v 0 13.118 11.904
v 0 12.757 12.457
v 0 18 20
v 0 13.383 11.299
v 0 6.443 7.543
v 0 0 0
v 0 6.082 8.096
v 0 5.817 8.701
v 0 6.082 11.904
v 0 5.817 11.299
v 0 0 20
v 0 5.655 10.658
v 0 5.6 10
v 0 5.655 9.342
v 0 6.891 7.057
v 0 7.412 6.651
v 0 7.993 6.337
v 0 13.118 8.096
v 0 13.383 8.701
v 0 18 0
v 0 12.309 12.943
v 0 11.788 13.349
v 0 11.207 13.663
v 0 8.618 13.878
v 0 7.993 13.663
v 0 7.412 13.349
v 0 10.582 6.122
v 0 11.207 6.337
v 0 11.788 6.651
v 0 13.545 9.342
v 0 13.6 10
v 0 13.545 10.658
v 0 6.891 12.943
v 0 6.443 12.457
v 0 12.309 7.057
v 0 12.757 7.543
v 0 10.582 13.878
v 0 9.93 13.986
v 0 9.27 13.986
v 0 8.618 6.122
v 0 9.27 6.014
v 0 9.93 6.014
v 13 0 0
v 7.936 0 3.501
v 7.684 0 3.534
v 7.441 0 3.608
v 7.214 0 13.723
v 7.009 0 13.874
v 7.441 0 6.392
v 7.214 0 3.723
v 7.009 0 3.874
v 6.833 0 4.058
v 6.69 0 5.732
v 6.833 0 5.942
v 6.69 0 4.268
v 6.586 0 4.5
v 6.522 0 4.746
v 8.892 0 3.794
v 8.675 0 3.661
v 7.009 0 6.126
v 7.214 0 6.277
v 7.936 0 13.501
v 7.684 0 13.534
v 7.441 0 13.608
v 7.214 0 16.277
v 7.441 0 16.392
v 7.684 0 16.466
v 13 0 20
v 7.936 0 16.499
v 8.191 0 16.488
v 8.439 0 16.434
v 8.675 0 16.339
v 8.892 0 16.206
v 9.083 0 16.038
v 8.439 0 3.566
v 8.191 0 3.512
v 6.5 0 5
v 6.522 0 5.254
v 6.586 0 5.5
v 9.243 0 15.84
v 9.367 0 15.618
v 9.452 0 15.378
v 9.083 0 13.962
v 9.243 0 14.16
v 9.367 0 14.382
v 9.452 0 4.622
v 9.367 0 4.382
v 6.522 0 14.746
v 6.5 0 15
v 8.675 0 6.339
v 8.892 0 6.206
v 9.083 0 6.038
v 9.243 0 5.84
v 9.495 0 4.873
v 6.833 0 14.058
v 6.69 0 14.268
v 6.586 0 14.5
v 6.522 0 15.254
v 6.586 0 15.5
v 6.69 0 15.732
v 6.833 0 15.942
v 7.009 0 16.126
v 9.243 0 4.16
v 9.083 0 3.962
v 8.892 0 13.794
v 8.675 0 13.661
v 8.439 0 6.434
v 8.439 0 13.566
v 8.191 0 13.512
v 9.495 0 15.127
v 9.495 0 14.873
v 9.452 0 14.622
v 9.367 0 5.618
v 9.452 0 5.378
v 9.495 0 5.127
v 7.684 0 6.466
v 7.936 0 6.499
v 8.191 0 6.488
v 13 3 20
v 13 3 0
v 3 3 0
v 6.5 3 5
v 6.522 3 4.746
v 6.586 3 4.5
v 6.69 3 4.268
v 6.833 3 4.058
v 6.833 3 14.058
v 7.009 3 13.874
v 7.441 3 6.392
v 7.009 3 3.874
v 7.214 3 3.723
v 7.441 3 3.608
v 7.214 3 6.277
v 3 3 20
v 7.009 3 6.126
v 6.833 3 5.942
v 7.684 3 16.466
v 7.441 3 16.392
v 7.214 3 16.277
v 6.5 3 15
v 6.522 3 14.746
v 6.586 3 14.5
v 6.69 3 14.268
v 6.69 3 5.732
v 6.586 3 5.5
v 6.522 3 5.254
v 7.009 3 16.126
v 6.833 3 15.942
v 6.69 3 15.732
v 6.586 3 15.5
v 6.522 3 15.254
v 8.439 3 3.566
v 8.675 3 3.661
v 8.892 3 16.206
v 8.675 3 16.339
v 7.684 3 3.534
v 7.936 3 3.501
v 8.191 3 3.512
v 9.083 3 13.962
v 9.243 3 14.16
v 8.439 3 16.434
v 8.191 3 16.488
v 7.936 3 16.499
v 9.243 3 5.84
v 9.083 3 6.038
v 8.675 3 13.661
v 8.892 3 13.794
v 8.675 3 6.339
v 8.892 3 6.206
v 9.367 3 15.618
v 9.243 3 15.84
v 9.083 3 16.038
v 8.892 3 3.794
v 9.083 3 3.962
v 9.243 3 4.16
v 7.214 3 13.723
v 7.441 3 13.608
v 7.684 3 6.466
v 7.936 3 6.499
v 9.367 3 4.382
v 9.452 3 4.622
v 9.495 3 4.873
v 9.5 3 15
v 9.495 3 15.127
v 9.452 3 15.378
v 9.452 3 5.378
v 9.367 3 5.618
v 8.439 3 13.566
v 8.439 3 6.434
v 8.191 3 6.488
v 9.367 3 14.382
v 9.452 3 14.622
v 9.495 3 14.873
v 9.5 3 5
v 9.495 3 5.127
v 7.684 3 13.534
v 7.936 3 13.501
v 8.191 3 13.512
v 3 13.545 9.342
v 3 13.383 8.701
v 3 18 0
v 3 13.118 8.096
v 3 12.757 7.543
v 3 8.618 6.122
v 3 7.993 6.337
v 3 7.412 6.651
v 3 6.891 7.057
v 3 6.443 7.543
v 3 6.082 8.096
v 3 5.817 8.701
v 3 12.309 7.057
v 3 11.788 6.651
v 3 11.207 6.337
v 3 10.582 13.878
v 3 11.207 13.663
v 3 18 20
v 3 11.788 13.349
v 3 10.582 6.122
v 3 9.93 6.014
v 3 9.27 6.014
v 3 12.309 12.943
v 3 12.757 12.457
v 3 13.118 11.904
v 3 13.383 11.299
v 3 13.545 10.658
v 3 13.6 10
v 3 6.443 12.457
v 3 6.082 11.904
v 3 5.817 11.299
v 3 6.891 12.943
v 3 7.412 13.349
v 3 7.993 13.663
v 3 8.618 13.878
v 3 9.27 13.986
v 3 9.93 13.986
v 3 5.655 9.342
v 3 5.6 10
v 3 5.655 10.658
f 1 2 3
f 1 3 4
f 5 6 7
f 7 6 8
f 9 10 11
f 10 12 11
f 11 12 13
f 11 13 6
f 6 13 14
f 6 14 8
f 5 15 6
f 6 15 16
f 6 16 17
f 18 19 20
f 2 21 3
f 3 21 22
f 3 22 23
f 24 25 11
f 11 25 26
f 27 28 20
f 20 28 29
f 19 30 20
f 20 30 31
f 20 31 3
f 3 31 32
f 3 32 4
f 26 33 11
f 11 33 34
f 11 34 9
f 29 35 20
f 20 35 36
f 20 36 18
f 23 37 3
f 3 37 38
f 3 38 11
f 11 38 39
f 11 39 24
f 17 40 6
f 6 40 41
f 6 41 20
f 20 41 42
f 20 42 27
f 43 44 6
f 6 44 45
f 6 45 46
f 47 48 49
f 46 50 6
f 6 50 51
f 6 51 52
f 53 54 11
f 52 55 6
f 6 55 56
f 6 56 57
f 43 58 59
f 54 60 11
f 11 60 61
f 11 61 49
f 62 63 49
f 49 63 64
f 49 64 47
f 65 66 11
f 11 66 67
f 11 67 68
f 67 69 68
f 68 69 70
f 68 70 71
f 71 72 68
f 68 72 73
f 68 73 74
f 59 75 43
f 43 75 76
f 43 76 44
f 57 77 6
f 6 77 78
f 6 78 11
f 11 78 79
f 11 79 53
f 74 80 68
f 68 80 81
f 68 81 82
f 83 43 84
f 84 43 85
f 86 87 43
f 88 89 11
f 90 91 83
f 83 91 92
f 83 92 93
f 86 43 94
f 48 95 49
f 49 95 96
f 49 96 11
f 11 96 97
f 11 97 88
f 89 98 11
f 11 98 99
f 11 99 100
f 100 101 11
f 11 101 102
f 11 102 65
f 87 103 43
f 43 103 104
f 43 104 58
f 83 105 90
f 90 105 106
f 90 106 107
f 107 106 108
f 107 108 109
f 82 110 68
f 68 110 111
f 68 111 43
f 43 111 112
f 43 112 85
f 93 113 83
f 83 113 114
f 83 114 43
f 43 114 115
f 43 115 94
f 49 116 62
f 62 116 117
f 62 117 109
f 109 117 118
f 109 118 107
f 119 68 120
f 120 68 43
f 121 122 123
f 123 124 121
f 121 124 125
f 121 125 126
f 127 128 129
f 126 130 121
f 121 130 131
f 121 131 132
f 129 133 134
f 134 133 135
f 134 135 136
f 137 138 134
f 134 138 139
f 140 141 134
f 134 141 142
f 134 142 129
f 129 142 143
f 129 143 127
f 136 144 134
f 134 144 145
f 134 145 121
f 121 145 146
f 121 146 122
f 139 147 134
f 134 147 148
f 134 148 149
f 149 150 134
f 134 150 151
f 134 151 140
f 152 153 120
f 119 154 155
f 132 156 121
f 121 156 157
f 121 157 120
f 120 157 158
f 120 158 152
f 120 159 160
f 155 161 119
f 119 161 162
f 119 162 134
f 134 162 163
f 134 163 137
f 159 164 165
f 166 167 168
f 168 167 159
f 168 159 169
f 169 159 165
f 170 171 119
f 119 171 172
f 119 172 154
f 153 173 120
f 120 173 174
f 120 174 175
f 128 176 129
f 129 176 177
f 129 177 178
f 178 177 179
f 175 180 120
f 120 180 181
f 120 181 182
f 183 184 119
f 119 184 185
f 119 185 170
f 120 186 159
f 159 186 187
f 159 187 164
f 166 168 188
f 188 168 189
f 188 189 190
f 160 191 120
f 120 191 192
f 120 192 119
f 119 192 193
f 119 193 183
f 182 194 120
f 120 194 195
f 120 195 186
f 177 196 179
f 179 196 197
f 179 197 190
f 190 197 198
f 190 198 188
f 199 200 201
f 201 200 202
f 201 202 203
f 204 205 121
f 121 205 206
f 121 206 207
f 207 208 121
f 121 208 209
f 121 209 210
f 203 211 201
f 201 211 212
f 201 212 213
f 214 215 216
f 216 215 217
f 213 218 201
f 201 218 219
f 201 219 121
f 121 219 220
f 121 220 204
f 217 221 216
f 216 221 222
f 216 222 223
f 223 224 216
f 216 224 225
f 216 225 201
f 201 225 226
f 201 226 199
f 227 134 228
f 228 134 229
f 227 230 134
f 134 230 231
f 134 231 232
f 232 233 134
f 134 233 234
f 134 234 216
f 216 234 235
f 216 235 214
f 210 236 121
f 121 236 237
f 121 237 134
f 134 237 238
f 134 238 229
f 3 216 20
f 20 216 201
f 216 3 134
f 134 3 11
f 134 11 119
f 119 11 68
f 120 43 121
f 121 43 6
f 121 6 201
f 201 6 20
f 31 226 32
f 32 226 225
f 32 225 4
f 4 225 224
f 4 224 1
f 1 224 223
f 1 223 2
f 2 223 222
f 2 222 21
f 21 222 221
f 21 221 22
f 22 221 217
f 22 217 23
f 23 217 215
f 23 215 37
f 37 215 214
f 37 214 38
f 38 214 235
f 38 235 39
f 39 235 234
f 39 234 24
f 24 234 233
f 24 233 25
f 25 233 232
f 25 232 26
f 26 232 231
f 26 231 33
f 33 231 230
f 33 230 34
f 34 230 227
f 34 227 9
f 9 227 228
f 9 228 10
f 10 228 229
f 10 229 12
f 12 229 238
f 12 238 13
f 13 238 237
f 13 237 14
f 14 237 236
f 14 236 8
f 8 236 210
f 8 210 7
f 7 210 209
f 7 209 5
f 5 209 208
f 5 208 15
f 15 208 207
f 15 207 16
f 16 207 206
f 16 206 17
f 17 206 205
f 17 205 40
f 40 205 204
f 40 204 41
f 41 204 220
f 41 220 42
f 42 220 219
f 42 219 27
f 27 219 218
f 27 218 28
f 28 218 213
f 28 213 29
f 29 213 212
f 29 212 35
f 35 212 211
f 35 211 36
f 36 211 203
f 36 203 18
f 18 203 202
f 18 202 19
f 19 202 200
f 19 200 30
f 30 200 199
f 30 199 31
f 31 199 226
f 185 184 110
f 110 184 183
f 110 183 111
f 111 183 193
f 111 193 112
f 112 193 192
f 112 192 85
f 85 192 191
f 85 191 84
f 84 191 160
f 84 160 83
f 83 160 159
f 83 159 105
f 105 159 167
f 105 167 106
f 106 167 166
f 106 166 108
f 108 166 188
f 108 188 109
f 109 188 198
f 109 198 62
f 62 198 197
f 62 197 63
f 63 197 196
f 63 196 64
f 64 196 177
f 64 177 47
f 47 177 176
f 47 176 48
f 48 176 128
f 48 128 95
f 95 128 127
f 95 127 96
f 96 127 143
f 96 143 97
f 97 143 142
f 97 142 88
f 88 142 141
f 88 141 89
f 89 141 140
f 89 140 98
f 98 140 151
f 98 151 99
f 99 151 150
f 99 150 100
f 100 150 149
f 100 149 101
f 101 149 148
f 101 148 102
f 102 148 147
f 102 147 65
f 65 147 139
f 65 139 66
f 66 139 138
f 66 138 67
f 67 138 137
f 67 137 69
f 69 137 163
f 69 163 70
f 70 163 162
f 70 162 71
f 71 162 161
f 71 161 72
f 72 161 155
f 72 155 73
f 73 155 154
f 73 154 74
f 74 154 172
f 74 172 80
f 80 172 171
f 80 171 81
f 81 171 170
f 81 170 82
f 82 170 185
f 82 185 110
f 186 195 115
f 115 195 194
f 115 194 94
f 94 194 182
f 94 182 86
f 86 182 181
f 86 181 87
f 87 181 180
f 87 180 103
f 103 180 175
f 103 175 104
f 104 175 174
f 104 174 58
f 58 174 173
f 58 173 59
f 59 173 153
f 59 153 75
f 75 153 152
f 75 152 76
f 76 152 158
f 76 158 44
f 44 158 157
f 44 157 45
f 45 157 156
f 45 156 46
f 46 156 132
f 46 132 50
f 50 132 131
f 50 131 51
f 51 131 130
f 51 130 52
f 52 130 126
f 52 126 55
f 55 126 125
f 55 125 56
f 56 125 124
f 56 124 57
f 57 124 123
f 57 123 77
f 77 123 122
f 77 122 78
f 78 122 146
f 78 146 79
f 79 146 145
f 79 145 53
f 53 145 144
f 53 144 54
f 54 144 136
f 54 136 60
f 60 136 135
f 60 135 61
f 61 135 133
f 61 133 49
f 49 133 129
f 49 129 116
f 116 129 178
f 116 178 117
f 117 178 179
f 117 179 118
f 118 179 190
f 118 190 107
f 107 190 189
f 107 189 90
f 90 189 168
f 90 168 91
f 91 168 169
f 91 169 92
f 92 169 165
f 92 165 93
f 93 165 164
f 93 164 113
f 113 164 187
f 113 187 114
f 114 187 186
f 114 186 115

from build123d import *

# Parameters (mm, degrees)
BOSS_EXTRU_1_DEPTH           = 20
ENL_V_MAT_EXTRU_1_DEPTH      = 29.705400189
ENL_V_MAT_EXTRU_1_DEPTH_BACK = 29.705400189
ESQUISSE2_R                  = 4
ENL_V_MAT_EXTRU_2_DEPTH      = 29.178005607
ENL_V_MAT_EXTRU_2_DEPTH_BACK = 29.178005607
ESQUISSE3_R                  = 1.5


with BuildPart() as part:
    # Esquisse1 → Boss.-Extru.1 (new body)
    with BuildSketch(Plane.XY):
        Polygon((0, 0), (13, 0), (13, 3), (3, 3), (3, 18), (0, 18), align=None)
    extrude(amount=BOSS_EXTRU_1_DEPTH)

    # Esquisse2 → Enlèv. mat.-Extru.1 (cut, two sides: drawn at the far end of the back side and taken through both)
    with BuildSketch(Plane(origin=(3, 0, 0), x_dir=(0, 0, -1), z_dir=(1, 0, 0)).offset(-ENL_V_MAT_EXTRU_1_DEPTH_BACK)):
        with Locations((-10, 9.6)):
            Circle(ESQUISSE2_R)
    extrude(amount=ENL_V_MAT_EXTRU_1_DEPTH + ENL_V_MAT_EXTRU_1_DEPTH_BACK, mode=Mode.SUBTRACT)

    # Esquisse3 → Enlèv. mat.-Extru.2 (cut, two sides: drawn at the far end of the back side and taken through both)
    with BuildSketch(Plane(origin=(0, 3, 0), x_dir=(1, 0, 0), z_dir=(0, 1, 0)).offset(-ENL_V_MAT_EXTRU_2_DEPTH_BACK)):
        with Locations((8, -5)):
            Circle(ESQUISSE3_R)
        with Locations((8, -15)):
            Circle(ESQUISSE3_R)
    extrude(amount=ENL_V_MAT_EXTRU_2_DEPTH + ENL_V_MAT_EXTRU_2_DEPTH_BACK, mode=Mode.SUBTRACT)


solid = part.part
